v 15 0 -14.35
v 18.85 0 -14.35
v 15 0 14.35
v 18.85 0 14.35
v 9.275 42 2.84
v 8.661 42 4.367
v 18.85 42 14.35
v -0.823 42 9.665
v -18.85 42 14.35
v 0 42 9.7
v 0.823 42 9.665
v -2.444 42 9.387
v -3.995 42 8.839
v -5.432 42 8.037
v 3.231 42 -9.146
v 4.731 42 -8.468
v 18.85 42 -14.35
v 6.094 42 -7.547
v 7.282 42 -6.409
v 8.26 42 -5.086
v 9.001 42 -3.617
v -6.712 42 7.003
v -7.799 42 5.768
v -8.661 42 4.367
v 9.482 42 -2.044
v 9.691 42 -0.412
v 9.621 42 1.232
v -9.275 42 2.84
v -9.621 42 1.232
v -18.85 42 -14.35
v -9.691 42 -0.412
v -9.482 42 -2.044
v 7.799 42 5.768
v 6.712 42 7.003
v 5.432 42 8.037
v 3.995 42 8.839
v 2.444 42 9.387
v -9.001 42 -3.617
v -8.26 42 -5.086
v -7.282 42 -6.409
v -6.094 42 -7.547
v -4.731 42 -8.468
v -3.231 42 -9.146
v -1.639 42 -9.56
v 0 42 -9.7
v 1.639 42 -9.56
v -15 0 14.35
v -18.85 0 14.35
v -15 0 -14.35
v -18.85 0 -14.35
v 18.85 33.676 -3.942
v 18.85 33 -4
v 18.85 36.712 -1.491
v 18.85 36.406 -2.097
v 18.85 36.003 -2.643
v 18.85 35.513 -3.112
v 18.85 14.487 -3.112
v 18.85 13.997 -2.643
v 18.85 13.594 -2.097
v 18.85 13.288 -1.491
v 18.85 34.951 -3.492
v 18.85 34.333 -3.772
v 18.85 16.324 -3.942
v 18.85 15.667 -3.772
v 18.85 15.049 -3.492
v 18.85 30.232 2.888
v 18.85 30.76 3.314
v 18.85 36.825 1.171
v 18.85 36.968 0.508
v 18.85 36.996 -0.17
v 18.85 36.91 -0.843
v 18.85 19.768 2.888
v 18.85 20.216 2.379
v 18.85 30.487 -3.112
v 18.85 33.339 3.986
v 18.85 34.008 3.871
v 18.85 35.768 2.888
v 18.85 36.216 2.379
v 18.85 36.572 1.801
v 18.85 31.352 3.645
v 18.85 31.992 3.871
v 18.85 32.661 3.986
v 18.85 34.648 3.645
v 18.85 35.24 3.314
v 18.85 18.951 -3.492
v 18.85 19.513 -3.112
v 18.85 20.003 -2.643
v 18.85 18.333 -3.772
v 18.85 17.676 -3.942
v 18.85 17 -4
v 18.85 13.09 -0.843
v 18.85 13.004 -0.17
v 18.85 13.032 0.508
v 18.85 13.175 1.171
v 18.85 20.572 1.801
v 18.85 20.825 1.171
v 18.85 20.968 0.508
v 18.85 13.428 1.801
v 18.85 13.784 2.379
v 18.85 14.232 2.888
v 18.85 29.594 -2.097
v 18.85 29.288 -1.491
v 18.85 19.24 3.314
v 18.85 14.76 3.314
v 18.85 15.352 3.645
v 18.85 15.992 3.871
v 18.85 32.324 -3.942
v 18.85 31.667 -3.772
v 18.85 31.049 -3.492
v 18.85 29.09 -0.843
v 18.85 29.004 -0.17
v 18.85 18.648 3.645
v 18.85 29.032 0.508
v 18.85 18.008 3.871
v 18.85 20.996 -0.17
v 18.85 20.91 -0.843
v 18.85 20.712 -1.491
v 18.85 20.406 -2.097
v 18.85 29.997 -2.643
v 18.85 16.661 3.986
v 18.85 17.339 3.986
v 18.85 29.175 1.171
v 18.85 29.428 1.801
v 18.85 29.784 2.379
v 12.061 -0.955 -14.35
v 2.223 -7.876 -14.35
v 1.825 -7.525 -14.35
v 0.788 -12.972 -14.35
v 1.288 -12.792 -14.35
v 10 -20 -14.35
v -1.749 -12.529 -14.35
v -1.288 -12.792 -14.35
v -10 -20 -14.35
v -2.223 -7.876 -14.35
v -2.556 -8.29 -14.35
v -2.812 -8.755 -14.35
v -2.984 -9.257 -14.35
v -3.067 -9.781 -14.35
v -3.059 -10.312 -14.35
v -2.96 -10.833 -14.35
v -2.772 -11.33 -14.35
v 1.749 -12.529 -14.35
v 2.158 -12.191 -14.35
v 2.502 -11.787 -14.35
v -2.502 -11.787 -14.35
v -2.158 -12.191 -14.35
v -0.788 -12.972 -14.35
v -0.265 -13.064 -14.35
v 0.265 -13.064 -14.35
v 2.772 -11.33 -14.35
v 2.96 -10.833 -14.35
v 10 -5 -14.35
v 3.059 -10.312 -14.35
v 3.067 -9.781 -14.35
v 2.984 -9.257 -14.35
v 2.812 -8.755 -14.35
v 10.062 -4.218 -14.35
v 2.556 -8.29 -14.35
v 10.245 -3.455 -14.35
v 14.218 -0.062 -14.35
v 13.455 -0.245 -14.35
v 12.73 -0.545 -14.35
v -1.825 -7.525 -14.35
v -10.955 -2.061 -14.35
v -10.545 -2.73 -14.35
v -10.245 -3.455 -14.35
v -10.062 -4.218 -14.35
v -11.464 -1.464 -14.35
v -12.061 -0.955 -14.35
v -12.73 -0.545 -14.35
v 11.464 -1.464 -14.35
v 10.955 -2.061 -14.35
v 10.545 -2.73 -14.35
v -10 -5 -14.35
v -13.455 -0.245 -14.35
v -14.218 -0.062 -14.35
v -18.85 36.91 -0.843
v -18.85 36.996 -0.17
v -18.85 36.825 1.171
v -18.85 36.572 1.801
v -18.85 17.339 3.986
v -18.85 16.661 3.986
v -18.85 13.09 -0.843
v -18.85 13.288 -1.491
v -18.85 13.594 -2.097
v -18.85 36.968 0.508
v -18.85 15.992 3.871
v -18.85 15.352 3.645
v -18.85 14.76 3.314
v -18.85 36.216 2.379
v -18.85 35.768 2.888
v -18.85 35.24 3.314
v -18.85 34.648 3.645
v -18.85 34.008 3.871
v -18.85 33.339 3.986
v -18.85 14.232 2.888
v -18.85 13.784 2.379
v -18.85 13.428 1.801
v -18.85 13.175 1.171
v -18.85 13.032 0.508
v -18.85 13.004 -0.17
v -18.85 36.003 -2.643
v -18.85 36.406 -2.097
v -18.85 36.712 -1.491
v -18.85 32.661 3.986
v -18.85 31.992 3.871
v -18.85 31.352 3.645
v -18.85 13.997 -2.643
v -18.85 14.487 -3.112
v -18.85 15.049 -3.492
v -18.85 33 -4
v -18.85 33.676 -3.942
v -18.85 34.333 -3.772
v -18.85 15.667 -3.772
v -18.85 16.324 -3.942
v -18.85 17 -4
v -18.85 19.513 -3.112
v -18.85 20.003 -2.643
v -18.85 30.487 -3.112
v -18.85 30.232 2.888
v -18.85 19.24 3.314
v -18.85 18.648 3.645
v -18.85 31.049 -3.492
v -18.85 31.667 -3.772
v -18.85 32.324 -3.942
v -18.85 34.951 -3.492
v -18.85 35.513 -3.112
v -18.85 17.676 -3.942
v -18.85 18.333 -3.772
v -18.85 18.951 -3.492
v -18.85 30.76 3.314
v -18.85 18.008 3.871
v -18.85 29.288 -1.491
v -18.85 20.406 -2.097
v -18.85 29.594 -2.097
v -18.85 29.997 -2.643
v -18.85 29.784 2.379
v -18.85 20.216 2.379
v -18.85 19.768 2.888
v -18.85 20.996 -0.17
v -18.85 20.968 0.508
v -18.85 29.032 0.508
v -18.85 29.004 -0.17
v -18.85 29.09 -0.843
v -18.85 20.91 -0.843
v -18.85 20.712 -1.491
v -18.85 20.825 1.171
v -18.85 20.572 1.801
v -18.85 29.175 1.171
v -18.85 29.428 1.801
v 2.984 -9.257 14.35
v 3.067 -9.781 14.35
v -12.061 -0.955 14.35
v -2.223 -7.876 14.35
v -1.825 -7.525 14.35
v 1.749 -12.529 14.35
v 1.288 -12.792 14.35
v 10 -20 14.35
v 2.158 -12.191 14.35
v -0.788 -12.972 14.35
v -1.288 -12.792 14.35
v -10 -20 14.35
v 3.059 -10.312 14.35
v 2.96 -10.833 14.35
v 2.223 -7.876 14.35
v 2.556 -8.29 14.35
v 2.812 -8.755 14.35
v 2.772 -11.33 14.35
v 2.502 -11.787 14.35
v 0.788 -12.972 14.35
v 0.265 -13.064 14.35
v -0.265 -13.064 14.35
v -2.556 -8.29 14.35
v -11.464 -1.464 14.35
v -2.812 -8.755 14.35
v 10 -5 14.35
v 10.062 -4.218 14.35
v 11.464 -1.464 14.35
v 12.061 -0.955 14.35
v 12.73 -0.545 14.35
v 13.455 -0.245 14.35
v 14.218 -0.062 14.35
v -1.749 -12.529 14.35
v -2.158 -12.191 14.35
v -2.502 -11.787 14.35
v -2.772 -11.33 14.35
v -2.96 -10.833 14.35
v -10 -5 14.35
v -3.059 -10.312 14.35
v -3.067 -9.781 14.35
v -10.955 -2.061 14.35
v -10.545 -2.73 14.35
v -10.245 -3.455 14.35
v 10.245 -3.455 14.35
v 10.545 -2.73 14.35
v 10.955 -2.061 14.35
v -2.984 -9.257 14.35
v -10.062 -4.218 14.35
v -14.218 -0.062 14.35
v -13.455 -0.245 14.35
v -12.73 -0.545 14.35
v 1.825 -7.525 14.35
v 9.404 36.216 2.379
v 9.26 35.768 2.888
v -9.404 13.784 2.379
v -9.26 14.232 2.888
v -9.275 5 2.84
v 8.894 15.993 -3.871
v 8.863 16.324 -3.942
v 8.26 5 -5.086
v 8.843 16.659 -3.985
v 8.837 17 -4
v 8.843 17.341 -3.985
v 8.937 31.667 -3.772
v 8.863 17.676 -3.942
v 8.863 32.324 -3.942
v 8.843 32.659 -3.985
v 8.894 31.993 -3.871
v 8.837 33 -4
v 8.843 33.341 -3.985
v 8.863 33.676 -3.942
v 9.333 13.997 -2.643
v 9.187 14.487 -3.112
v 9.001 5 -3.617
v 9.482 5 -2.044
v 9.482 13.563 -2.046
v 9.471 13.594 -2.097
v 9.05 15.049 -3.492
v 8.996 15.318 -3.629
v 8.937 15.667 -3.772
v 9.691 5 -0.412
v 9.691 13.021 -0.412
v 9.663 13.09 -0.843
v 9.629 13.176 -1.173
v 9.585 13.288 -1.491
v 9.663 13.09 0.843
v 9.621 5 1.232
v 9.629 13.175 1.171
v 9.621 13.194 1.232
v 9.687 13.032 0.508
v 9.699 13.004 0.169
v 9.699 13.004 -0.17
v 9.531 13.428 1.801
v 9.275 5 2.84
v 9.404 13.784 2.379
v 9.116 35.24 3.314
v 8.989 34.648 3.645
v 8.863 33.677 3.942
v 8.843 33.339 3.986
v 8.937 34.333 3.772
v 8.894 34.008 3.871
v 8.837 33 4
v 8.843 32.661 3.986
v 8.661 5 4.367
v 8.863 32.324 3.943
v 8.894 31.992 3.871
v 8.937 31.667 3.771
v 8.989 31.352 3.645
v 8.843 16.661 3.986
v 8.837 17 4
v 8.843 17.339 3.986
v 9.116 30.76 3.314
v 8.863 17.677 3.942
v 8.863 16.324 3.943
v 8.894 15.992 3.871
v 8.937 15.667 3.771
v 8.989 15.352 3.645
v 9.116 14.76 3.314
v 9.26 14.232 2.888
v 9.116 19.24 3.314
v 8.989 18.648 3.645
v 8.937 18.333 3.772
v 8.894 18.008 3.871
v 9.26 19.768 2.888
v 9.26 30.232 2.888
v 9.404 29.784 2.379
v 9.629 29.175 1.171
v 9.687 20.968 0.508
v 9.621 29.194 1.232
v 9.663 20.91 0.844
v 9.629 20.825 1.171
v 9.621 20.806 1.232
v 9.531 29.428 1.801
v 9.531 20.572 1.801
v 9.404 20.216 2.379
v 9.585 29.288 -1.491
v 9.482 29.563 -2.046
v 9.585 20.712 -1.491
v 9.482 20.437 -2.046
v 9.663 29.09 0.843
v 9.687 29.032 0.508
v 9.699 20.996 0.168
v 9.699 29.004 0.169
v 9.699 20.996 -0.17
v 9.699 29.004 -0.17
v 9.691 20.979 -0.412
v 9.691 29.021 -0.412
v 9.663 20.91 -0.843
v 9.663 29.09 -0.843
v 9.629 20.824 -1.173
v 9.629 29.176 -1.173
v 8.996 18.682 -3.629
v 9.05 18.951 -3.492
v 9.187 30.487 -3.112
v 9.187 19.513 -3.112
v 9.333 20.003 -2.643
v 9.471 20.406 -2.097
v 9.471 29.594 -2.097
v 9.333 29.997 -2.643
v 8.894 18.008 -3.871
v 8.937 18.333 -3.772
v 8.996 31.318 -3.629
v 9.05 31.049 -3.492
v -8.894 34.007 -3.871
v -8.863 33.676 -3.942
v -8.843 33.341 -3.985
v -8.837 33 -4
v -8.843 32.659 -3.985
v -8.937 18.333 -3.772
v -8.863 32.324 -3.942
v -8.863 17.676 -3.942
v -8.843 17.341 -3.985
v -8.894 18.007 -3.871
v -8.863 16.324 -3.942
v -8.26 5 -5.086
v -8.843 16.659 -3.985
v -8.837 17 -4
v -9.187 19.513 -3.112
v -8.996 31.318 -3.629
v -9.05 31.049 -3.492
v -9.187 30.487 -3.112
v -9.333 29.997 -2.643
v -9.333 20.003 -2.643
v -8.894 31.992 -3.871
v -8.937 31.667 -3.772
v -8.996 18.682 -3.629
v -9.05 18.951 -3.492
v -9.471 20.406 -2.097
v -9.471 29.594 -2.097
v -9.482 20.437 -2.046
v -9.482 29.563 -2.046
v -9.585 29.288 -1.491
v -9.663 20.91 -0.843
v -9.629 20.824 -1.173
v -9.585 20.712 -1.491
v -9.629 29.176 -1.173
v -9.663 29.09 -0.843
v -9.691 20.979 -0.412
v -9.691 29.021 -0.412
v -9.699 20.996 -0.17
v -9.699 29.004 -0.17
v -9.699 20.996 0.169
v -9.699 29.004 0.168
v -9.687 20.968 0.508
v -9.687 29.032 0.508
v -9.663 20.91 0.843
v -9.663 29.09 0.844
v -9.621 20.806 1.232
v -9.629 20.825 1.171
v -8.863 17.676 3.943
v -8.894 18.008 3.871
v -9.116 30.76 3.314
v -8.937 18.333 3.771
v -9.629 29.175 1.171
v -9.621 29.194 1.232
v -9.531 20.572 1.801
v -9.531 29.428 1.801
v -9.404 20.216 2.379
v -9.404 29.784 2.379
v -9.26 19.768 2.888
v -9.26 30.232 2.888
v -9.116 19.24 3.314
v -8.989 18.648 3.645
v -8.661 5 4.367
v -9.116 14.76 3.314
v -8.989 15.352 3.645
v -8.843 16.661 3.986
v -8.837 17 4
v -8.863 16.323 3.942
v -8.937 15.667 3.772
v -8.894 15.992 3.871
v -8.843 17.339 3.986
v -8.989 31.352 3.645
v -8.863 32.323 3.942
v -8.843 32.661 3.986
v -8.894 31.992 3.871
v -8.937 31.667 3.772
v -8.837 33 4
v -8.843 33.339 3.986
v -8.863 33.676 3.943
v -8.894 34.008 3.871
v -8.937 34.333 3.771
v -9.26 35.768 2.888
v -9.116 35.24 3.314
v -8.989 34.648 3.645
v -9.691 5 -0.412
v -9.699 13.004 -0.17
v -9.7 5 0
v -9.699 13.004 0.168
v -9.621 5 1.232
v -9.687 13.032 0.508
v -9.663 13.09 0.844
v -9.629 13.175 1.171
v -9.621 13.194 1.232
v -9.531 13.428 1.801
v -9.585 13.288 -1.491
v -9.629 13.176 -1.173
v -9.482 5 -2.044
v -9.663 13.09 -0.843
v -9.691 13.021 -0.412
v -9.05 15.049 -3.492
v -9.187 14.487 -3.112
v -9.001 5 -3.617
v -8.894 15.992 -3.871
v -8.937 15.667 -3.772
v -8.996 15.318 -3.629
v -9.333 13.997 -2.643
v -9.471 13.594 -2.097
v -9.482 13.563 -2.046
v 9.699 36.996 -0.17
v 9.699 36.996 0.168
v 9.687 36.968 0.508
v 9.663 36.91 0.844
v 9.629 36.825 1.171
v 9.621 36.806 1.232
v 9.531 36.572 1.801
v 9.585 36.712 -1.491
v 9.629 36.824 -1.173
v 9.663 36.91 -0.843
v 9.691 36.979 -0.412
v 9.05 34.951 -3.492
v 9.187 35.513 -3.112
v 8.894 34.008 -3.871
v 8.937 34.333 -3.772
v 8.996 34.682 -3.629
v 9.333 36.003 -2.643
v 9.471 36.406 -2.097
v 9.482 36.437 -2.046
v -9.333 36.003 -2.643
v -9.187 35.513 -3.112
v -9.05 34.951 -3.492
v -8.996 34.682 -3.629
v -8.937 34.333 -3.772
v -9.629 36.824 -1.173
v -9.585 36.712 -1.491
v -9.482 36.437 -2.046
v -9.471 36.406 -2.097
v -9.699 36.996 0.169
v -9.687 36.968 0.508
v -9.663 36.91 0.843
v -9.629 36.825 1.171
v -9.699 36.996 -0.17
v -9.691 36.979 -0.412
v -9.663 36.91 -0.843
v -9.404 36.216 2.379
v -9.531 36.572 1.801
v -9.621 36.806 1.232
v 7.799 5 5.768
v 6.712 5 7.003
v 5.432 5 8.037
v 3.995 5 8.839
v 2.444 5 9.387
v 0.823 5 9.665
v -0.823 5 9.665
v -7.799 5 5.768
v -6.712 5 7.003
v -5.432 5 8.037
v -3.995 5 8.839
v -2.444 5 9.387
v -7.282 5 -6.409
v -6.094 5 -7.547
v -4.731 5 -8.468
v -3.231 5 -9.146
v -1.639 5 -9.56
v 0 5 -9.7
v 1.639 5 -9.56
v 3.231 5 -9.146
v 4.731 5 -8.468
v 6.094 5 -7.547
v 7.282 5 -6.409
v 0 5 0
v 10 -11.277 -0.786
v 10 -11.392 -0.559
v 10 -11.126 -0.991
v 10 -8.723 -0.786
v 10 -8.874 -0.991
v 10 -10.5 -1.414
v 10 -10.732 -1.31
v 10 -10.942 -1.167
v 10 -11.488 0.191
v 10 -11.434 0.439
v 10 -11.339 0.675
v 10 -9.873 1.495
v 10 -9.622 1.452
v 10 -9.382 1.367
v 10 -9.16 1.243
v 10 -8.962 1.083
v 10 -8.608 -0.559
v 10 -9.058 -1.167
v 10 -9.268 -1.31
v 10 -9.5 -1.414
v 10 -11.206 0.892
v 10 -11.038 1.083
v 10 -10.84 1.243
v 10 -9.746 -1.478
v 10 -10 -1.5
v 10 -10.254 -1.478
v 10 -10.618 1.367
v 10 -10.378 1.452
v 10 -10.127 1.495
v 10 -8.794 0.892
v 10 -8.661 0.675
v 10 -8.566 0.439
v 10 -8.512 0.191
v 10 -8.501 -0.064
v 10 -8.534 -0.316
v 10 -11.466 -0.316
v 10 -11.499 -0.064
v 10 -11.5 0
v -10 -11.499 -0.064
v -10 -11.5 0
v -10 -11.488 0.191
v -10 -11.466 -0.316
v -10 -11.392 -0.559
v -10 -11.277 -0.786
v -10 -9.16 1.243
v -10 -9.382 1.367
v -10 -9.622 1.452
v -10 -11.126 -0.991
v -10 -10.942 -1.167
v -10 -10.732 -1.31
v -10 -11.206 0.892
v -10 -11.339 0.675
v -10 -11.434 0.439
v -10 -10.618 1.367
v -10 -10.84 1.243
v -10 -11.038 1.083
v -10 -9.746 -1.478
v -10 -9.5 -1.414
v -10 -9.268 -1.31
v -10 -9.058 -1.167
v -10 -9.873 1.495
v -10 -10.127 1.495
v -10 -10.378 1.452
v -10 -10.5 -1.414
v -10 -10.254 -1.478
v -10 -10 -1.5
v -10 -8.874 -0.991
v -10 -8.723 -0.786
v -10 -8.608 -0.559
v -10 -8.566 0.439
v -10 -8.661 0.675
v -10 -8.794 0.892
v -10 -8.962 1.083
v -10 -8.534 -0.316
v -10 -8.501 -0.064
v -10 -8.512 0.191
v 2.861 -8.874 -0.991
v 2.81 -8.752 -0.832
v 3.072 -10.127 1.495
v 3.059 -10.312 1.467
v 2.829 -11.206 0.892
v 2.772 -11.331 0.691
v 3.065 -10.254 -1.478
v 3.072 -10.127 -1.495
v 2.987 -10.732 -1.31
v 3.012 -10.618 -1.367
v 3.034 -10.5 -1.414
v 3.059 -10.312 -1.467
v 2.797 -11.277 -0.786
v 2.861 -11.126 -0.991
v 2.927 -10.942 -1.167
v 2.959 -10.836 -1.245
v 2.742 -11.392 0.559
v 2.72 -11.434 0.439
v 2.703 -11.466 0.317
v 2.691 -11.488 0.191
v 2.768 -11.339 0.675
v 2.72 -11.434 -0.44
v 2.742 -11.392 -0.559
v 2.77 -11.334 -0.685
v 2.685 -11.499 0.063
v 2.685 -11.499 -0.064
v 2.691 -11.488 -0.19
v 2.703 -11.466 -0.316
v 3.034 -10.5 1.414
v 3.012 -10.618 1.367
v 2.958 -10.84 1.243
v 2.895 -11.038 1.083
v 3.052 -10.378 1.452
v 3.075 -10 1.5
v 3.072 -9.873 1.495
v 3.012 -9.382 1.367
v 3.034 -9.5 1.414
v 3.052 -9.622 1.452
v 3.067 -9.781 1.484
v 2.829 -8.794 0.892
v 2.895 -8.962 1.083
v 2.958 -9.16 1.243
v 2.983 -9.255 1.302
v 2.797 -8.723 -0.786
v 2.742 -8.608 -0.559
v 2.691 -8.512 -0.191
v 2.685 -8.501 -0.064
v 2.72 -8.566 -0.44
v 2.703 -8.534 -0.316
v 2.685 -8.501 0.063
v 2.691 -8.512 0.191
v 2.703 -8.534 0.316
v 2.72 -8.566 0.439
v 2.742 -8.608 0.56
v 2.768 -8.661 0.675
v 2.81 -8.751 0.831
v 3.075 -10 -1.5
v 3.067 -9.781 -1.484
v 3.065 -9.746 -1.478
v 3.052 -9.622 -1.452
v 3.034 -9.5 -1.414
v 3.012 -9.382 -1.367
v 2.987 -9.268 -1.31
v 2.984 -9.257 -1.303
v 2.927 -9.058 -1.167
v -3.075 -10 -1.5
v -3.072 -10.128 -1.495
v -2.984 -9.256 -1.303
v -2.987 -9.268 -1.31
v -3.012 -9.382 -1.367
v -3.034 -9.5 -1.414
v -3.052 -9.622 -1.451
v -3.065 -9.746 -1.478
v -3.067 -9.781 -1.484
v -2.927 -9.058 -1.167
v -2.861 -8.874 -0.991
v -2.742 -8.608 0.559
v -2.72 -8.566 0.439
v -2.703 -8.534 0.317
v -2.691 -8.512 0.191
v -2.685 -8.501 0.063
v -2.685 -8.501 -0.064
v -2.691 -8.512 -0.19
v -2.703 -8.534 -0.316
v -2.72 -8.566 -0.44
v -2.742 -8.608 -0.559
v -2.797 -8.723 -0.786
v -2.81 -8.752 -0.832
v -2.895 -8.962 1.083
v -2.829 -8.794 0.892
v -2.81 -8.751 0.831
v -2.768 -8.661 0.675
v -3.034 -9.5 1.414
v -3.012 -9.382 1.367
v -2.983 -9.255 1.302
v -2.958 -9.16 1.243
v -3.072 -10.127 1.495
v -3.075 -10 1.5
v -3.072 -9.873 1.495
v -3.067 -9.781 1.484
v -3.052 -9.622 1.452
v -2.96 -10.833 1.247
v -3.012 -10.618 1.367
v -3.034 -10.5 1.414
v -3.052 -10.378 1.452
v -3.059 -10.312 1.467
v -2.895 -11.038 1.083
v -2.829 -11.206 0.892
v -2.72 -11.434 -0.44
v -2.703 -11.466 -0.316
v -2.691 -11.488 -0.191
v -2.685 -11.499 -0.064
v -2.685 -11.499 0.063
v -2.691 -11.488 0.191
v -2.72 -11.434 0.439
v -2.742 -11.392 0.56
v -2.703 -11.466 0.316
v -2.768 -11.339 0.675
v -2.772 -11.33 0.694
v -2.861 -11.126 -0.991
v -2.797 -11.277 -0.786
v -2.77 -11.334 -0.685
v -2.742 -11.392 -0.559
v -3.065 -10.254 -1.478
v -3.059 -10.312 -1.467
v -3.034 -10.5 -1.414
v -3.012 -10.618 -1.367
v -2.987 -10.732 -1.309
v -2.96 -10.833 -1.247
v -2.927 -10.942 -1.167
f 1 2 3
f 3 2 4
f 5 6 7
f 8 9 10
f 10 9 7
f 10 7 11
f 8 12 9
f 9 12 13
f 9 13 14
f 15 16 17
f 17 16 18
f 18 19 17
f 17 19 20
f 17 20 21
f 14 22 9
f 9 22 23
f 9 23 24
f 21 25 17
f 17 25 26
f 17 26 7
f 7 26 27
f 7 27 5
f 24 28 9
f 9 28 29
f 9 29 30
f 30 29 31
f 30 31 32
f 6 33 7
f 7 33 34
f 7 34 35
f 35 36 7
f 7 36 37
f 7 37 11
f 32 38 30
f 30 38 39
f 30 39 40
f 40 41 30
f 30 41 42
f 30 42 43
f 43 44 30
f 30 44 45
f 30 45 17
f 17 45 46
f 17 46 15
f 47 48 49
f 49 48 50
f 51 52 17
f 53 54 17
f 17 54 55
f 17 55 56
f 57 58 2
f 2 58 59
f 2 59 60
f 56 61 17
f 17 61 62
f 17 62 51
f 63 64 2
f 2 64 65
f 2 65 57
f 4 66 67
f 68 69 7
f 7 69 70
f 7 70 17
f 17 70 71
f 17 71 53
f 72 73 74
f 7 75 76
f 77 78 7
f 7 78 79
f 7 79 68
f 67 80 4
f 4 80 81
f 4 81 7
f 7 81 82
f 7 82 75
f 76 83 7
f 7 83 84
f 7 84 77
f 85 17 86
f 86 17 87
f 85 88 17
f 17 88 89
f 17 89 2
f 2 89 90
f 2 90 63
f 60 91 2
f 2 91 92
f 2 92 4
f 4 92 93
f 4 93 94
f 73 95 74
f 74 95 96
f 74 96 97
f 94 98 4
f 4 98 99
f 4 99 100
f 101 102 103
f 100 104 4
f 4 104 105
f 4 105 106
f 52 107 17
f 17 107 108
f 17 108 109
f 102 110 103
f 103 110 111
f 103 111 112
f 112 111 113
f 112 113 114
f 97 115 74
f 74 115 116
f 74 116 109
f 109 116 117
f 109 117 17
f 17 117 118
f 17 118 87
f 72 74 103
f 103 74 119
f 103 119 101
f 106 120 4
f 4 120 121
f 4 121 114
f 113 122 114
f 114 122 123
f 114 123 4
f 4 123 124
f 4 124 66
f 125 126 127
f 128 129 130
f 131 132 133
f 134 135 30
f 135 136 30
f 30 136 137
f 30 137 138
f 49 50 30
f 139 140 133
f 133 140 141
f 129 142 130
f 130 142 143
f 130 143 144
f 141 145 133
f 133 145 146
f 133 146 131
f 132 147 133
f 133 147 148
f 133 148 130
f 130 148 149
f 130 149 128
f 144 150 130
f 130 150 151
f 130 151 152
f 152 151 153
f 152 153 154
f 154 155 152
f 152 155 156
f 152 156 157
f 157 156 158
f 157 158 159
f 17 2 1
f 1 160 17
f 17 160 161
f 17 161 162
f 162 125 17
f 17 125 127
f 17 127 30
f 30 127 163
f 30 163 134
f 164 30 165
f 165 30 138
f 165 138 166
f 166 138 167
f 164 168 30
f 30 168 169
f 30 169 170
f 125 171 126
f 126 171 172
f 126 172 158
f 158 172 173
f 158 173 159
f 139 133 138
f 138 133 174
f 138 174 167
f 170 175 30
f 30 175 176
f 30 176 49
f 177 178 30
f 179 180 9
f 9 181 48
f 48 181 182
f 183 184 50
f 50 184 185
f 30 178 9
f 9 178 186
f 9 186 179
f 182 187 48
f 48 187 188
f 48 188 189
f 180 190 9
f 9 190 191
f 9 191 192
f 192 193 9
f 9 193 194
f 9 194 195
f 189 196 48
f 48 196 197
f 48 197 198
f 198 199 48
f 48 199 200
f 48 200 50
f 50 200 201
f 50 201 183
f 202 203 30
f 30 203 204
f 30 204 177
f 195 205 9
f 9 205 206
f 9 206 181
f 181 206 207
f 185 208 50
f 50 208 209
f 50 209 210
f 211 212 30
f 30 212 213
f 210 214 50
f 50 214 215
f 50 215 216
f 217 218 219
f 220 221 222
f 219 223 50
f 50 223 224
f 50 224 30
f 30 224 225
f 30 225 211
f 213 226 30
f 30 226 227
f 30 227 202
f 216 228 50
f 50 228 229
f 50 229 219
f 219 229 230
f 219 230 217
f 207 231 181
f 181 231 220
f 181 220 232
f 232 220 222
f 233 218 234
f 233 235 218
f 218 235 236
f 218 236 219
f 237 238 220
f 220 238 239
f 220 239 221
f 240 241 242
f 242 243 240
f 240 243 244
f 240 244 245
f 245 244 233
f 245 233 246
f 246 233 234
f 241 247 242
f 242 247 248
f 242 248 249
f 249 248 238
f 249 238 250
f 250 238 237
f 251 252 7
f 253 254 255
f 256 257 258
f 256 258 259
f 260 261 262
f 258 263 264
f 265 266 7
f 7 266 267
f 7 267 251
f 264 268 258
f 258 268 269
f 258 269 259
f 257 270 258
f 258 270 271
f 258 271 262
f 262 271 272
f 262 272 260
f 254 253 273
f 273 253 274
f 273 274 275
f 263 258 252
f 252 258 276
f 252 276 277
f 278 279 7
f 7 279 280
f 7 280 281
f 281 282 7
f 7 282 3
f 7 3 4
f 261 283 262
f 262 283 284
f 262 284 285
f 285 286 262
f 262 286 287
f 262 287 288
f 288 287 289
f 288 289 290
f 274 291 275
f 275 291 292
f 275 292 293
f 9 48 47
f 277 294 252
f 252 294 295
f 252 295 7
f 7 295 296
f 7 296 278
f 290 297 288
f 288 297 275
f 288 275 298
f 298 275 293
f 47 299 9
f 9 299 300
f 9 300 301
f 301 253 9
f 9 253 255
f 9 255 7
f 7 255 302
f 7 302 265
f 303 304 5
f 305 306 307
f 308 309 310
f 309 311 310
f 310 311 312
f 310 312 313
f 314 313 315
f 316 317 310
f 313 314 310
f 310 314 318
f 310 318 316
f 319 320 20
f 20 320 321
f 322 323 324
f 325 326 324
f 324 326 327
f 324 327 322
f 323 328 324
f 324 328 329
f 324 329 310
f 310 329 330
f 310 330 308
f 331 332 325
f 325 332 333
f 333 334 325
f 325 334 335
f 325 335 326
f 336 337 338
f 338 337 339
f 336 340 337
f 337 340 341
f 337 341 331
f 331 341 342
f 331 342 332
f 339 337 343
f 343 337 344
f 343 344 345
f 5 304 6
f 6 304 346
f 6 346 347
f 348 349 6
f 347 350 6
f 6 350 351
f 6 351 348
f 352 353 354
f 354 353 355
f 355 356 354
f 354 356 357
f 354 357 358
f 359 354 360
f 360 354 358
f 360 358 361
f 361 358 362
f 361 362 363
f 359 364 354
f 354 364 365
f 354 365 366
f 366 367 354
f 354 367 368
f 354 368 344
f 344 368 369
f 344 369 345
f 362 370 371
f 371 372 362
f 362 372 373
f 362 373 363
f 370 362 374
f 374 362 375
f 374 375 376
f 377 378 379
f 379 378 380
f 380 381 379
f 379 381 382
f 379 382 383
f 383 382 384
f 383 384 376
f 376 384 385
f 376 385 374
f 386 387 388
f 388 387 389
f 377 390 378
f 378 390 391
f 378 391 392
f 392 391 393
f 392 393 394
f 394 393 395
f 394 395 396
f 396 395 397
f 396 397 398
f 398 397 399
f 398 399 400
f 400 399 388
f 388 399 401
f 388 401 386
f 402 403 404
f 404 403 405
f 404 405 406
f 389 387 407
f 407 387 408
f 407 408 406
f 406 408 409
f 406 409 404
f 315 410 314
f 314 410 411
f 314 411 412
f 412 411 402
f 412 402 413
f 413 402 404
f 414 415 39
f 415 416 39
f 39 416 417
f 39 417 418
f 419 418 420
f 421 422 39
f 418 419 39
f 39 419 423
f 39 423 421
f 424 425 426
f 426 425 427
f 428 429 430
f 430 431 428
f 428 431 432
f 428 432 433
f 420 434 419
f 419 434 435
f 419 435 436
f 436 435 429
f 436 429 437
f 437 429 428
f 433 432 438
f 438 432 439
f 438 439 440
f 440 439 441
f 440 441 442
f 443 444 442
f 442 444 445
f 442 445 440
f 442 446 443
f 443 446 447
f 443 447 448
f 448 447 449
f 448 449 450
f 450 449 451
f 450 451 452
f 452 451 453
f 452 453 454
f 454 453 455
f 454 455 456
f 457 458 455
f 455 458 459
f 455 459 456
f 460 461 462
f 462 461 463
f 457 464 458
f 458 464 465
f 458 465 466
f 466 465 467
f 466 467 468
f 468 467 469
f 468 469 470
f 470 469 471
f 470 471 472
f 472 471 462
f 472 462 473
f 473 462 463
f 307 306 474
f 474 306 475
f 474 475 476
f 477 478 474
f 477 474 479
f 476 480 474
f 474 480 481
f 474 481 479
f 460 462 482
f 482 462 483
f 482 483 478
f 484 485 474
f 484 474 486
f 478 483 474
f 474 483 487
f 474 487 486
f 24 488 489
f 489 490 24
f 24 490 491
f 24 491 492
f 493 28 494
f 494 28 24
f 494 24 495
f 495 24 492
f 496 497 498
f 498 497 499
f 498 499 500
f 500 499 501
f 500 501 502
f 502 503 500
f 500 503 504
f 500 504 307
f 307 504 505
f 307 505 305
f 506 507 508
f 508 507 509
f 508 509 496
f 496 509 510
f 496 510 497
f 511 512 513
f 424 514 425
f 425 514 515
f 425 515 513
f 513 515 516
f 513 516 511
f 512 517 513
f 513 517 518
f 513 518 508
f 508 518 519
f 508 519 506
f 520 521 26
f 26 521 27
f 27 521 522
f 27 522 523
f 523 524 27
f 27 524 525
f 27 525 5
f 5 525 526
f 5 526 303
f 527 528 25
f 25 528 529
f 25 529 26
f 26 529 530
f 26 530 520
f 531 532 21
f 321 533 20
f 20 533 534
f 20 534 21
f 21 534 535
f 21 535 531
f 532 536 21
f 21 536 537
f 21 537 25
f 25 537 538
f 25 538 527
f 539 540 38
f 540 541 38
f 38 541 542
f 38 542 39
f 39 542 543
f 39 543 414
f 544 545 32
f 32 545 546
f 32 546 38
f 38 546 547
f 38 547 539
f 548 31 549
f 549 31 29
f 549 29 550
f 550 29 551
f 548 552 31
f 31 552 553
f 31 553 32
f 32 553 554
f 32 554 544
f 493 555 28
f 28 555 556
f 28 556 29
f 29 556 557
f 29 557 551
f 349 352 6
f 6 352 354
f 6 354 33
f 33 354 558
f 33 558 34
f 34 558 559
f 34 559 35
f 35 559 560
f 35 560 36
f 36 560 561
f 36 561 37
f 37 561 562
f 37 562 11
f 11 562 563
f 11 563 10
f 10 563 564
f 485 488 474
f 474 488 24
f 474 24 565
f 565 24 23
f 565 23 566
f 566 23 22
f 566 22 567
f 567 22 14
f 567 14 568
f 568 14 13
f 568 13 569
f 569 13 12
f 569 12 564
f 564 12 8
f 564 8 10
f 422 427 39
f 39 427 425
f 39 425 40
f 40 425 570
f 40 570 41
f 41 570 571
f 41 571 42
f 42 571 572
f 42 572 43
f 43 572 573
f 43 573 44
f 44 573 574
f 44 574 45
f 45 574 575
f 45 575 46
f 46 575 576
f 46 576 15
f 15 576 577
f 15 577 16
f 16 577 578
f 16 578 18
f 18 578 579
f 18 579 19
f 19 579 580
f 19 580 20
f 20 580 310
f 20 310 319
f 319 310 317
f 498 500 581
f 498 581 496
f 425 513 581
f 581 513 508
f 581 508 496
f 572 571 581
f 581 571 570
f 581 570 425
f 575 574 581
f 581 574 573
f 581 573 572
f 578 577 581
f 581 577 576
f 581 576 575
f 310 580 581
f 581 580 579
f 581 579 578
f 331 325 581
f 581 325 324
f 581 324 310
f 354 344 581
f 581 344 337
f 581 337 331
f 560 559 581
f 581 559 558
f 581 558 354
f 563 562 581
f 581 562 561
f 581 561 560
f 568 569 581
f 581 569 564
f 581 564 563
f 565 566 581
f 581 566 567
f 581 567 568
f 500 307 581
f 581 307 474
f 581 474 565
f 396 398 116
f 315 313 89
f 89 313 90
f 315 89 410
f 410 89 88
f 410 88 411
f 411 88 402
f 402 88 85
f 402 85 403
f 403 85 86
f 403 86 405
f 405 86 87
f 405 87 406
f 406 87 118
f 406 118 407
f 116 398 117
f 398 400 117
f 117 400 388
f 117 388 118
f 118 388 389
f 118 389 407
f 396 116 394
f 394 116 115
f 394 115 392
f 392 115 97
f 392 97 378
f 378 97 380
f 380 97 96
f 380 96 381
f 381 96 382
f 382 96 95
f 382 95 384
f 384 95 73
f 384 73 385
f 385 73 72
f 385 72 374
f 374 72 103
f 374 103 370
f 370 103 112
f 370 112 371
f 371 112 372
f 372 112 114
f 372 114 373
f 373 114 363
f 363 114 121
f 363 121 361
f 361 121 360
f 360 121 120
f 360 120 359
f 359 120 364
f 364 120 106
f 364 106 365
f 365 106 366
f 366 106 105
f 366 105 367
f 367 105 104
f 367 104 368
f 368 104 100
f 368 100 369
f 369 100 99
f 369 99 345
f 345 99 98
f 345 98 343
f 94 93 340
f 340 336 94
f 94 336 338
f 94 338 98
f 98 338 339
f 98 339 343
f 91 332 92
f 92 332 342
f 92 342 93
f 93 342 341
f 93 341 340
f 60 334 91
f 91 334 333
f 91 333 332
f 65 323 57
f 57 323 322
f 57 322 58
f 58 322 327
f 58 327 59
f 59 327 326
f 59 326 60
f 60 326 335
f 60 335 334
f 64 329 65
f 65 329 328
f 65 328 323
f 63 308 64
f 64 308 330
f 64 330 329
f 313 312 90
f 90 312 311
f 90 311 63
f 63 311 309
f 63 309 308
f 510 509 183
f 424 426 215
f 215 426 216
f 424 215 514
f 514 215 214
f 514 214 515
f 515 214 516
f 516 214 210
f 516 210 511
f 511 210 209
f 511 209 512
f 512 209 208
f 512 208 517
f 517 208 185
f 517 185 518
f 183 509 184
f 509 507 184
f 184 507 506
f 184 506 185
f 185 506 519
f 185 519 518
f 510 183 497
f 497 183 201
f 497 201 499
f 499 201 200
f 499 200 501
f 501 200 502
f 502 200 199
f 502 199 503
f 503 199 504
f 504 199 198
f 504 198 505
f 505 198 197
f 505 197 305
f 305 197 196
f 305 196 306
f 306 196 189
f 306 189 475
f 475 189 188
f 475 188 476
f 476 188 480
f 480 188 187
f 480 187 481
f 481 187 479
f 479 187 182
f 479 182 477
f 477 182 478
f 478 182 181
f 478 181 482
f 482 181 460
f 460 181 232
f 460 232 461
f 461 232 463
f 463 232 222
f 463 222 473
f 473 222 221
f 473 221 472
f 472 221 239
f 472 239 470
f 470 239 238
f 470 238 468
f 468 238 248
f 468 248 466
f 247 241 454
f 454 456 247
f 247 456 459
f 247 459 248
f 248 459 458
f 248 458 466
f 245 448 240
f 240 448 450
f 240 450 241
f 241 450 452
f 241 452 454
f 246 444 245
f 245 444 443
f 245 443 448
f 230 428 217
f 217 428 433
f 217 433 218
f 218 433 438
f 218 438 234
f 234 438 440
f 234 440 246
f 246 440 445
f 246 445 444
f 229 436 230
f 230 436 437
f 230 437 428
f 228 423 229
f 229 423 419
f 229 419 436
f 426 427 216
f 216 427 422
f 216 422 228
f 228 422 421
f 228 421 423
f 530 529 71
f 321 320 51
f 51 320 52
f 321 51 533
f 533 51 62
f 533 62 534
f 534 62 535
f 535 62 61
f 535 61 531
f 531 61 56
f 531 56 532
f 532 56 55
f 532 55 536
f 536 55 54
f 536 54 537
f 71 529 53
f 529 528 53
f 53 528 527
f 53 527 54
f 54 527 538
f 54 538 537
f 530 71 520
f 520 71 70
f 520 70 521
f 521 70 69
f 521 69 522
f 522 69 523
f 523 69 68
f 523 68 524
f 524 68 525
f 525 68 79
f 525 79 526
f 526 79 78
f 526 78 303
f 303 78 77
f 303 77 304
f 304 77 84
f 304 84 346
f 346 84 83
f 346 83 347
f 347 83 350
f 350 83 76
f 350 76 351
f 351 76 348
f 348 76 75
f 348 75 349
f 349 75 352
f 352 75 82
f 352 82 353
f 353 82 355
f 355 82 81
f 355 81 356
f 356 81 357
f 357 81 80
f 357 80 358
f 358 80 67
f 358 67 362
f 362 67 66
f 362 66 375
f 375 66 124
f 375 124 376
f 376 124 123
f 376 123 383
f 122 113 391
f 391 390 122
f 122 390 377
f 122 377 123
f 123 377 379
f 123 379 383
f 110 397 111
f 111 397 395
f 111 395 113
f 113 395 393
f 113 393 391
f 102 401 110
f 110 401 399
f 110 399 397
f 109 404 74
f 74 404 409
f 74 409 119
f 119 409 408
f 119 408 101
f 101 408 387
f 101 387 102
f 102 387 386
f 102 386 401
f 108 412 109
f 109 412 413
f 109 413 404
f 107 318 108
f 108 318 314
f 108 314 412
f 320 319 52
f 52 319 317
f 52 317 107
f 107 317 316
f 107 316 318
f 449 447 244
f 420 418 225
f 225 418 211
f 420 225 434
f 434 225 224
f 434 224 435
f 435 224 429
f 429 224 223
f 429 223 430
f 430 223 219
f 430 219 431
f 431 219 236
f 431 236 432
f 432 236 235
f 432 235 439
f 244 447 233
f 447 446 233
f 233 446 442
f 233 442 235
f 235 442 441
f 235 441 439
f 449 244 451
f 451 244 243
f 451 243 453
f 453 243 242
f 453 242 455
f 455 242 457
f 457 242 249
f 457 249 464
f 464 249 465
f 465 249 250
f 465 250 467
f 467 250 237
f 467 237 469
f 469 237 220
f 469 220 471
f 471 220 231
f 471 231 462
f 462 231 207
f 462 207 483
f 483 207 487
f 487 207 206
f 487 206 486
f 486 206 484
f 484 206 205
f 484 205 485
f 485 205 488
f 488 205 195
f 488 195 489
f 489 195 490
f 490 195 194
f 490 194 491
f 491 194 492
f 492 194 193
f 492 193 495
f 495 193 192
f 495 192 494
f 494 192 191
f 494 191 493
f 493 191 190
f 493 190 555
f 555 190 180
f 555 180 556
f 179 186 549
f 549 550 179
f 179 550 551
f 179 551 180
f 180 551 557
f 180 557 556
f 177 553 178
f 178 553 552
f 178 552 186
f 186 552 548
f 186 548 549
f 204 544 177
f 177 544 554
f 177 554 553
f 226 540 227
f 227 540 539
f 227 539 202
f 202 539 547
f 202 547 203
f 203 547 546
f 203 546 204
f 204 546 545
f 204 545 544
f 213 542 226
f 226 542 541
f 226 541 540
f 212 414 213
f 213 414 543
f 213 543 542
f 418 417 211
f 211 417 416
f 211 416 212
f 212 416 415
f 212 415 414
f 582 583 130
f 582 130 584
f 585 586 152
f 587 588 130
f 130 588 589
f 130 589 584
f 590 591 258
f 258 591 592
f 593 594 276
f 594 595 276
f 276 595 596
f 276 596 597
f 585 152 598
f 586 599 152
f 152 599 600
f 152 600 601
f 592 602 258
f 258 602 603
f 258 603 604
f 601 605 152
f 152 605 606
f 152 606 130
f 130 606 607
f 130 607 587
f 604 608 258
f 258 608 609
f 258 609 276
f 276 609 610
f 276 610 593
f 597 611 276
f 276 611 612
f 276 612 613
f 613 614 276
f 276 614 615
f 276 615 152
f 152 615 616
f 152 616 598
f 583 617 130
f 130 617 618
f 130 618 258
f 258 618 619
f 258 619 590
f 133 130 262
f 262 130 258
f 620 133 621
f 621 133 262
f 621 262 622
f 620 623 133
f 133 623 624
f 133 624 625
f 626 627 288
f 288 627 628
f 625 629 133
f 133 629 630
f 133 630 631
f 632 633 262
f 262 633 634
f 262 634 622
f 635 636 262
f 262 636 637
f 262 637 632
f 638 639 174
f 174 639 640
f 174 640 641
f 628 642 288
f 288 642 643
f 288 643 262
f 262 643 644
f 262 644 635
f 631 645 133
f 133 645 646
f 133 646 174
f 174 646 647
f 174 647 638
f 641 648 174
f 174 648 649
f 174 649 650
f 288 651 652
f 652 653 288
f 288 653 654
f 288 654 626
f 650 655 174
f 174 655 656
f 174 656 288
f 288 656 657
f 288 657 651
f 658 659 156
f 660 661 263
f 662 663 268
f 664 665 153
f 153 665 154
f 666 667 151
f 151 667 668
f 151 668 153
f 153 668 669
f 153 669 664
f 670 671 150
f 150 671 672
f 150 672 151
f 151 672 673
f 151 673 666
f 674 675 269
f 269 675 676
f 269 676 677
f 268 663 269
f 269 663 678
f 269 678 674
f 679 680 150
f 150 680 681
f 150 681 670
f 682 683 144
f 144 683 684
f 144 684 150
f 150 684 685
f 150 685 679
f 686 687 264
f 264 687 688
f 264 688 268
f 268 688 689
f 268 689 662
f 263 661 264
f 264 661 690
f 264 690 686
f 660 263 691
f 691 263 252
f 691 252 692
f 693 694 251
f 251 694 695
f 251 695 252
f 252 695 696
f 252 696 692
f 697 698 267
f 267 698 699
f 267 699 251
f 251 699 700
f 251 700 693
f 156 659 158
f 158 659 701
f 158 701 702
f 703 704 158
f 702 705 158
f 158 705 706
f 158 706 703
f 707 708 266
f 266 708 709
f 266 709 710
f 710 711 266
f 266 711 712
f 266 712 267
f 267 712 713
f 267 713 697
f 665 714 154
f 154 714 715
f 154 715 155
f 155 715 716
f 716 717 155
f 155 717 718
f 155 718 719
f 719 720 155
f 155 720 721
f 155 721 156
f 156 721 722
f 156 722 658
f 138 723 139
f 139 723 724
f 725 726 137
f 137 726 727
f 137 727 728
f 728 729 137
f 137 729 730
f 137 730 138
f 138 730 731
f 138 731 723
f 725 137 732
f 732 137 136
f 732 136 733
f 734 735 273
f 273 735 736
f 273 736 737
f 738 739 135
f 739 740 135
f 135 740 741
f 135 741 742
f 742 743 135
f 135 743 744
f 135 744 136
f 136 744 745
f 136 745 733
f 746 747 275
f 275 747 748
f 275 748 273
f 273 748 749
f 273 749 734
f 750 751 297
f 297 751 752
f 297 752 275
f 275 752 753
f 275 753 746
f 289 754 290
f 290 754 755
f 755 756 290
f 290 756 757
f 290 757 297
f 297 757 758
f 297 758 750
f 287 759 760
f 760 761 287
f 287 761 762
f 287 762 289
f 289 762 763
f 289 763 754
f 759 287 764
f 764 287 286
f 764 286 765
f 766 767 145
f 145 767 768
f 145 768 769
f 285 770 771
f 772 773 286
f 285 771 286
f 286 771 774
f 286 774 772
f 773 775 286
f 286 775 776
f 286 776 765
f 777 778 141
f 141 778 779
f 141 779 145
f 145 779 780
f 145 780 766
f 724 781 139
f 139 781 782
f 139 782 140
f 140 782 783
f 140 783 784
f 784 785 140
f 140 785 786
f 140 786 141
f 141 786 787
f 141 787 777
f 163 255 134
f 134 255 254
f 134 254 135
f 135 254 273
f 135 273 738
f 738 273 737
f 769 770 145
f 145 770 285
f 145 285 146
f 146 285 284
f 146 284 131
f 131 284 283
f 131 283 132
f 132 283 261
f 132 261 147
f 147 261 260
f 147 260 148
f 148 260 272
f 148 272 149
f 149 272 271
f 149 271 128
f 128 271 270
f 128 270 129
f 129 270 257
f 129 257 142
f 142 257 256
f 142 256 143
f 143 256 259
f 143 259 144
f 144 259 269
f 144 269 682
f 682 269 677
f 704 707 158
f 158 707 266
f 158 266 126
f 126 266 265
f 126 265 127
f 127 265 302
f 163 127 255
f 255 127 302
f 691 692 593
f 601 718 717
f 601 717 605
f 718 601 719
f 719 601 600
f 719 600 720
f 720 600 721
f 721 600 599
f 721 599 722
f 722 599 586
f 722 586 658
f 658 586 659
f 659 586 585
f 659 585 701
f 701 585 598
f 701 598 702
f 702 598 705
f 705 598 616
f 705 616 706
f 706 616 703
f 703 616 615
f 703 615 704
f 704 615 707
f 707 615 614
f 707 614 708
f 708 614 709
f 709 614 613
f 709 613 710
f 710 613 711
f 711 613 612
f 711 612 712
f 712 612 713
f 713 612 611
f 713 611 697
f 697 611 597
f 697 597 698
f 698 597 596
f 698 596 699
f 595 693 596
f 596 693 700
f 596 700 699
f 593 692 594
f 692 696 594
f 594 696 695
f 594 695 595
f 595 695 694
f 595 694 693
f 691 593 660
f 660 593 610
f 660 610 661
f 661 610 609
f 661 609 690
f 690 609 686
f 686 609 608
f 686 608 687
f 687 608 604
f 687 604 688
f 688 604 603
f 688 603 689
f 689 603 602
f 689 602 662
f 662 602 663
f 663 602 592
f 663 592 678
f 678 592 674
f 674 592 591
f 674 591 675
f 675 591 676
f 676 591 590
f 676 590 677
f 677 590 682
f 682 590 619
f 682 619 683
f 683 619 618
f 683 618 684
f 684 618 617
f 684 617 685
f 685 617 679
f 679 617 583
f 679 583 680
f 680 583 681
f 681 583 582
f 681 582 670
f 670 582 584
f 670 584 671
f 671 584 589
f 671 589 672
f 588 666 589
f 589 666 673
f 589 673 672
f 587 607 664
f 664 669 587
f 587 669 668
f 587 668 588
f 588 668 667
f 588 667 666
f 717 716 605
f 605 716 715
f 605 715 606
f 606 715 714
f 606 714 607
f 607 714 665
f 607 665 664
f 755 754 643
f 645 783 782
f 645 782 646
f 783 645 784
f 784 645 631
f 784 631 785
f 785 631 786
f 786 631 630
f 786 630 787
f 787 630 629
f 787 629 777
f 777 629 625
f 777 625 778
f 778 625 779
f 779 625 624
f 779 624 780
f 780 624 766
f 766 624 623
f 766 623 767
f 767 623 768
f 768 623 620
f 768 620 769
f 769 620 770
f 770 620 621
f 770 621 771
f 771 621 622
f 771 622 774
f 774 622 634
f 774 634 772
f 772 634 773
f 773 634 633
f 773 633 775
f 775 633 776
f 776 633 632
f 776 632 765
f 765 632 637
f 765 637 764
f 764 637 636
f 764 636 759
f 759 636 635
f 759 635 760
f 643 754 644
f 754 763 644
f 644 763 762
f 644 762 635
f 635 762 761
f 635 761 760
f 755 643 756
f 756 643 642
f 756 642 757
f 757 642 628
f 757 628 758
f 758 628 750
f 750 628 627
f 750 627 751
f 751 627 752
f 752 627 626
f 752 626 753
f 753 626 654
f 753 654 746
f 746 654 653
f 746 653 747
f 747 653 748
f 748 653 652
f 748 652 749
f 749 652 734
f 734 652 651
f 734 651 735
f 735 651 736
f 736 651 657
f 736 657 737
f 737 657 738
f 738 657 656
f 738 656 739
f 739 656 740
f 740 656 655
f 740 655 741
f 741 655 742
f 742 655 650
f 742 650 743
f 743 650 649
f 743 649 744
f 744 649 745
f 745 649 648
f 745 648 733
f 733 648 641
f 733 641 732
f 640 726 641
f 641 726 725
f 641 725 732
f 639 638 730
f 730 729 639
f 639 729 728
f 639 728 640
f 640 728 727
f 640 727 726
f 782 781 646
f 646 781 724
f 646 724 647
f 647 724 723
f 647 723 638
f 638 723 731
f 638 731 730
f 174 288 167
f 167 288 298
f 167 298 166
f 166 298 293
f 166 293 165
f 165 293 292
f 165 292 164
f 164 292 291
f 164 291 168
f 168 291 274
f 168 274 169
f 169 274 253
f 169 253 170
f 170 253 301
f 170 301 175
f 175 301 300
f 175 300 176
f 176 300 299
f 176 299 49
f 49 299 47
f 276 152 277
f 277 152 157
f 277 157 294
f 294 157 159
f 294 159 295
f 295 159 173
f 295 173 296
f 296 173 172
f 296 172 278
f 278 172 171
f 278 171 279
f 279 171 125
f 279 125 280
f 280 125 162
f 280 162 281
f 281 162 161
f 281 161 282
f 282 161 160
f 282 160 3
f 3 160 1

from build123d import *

# Parameters (mm, degrees)
SKETCH11_W              = 37.7
SKETCH11_H              = 28.7
SKETCH11_R              = 9.7
BOSS_EXTRUDE1_DEPTH     = 42
BOSS_EXTRUDE3_REACH     = 56.25
SKETCH15_W              = 37.7
SKETCH15_H              = 5
SKETCH12_R              = 4
CUT_EXTRUDE1_DEPTH      = 40
SKETCH23_W              = 20
SKETCH23_H              = 20
BOSS_EXTRUDE4_DEPTH     = 14.35
CUT_EXTRUDE2_DEPTH      = 49.220794396
CUT_EXTRUDE2_DEPTH_BACK = 49.220794396
SKETCH24_R              = 1.5
FILLET1_R               = 5


with BuildPart() as part:
    # Sketch11 → Boss-Extrude1 (new body)
    with BuildSketch(Plane(origin=(0, 0, 0), x_dir=(1, 0, 0), z_dir=(0, 1, 0))):
        Rectangle(SKETCH11_W, SKETCH11_H)
        with Locations(Location((0, 0, 0), (0, 0, 90))):
            Circle(SKETCH11_R, mode=Mode.SUBTRACT)
    extrude(amount=BOSS_EXTRUDE1_DEPTH)

    # Boss-Extrude3: up to this face of the body (flat: up to its plane)
    boss_extrude3_end = Plane(part.part.faces().sort_by_distance((0, 21, -14.35))[0])
    # Sketch15 → Boss-Extrude3 (add, up to the picked face)
    with BuildSketch(Plane.XY.offset(14.35), mode=Mode.PRIVATE) as boss_extrude3_sk1:
        with Locations((0, 2.5)):
            Rectangle(SKETCH15_W, SKETCH15_H)
    boss_extrude3_tool1 = split(extrude(boss_extrude3_sk1.sketch, amount=-BOSS_EXTRUDE3_REACH, mode=Mode.PRIVATE), bisect_by=boss_extrude3_end, keep=Keep.BOTH, mode=Mode.PRIVATE)
    add(boss_extrude3_tool1.solids().sort_by(Axis((0, 2.5, 14.35), (0, 0, -1)))[0])

    # Sketch12 → Cut-Extrude1 (cut)
    with BuildSketch(Plane(origin=(18.85, 0, 0), x_dir=(0, 0, -1), z_dir=(1, 0, 0))):
        with Locations((0, 33)):
            Circle(SKETCH12_R)
        with Locations((0, 17)):
            Circle(SKETCH12_R)
    extrude(amount=-CUT_EXTRUDE1_DEPTH, mode=Mode.SUBTRACT)

    # Sketch23 → Boss-Extrude4 (add, symmetric)
    with BuildSketch(Plane.XY):
        with Locations((0, -10)):
            Rectangle(SKETCH23_W, SKETCH23_H)
        with BuildLine():
            Line((-1.824828759, -7.525), (1.824828759, -7.525))
            ThreePointArc((1.824828759, -7.525), (0, -13.075), (-1.824828759, -7.525))
        make_face(mode=Mode.SUBTRACT)
    extrude(amount=BOSS_EXTRUDE4_DEPTH, both=True)

    # Sketch24 → Cut-Extrude2 (cut, two sides: drawn at the far end of the back side and taken through both)
    with BuildSketch(Plane(origin=(0, 0, 0), x_dir=(0, 0, -1), z_dir=(1, 0, 0)).offset(-CUT_EXTRUDE2_DEPTH_BACK)):
        with Locations((0, -10)):
            Circle(SKETCH24_R)
    extrude(amount=CUT_EXTRUDE2_DEPTH + CUT_EXTRUDE2_DEPTH_BACK, mode=Mode.SUBTRACT)

    # Fillet1
    fillet1_edges = [part.edges().sort_by_distance(p)[0] for p in [
        (10, 0, 0),
        (-10, 0, 0),
    ]]
    fillet(fillet1_edges, radius=FILLET1_R)


solid = part.part
